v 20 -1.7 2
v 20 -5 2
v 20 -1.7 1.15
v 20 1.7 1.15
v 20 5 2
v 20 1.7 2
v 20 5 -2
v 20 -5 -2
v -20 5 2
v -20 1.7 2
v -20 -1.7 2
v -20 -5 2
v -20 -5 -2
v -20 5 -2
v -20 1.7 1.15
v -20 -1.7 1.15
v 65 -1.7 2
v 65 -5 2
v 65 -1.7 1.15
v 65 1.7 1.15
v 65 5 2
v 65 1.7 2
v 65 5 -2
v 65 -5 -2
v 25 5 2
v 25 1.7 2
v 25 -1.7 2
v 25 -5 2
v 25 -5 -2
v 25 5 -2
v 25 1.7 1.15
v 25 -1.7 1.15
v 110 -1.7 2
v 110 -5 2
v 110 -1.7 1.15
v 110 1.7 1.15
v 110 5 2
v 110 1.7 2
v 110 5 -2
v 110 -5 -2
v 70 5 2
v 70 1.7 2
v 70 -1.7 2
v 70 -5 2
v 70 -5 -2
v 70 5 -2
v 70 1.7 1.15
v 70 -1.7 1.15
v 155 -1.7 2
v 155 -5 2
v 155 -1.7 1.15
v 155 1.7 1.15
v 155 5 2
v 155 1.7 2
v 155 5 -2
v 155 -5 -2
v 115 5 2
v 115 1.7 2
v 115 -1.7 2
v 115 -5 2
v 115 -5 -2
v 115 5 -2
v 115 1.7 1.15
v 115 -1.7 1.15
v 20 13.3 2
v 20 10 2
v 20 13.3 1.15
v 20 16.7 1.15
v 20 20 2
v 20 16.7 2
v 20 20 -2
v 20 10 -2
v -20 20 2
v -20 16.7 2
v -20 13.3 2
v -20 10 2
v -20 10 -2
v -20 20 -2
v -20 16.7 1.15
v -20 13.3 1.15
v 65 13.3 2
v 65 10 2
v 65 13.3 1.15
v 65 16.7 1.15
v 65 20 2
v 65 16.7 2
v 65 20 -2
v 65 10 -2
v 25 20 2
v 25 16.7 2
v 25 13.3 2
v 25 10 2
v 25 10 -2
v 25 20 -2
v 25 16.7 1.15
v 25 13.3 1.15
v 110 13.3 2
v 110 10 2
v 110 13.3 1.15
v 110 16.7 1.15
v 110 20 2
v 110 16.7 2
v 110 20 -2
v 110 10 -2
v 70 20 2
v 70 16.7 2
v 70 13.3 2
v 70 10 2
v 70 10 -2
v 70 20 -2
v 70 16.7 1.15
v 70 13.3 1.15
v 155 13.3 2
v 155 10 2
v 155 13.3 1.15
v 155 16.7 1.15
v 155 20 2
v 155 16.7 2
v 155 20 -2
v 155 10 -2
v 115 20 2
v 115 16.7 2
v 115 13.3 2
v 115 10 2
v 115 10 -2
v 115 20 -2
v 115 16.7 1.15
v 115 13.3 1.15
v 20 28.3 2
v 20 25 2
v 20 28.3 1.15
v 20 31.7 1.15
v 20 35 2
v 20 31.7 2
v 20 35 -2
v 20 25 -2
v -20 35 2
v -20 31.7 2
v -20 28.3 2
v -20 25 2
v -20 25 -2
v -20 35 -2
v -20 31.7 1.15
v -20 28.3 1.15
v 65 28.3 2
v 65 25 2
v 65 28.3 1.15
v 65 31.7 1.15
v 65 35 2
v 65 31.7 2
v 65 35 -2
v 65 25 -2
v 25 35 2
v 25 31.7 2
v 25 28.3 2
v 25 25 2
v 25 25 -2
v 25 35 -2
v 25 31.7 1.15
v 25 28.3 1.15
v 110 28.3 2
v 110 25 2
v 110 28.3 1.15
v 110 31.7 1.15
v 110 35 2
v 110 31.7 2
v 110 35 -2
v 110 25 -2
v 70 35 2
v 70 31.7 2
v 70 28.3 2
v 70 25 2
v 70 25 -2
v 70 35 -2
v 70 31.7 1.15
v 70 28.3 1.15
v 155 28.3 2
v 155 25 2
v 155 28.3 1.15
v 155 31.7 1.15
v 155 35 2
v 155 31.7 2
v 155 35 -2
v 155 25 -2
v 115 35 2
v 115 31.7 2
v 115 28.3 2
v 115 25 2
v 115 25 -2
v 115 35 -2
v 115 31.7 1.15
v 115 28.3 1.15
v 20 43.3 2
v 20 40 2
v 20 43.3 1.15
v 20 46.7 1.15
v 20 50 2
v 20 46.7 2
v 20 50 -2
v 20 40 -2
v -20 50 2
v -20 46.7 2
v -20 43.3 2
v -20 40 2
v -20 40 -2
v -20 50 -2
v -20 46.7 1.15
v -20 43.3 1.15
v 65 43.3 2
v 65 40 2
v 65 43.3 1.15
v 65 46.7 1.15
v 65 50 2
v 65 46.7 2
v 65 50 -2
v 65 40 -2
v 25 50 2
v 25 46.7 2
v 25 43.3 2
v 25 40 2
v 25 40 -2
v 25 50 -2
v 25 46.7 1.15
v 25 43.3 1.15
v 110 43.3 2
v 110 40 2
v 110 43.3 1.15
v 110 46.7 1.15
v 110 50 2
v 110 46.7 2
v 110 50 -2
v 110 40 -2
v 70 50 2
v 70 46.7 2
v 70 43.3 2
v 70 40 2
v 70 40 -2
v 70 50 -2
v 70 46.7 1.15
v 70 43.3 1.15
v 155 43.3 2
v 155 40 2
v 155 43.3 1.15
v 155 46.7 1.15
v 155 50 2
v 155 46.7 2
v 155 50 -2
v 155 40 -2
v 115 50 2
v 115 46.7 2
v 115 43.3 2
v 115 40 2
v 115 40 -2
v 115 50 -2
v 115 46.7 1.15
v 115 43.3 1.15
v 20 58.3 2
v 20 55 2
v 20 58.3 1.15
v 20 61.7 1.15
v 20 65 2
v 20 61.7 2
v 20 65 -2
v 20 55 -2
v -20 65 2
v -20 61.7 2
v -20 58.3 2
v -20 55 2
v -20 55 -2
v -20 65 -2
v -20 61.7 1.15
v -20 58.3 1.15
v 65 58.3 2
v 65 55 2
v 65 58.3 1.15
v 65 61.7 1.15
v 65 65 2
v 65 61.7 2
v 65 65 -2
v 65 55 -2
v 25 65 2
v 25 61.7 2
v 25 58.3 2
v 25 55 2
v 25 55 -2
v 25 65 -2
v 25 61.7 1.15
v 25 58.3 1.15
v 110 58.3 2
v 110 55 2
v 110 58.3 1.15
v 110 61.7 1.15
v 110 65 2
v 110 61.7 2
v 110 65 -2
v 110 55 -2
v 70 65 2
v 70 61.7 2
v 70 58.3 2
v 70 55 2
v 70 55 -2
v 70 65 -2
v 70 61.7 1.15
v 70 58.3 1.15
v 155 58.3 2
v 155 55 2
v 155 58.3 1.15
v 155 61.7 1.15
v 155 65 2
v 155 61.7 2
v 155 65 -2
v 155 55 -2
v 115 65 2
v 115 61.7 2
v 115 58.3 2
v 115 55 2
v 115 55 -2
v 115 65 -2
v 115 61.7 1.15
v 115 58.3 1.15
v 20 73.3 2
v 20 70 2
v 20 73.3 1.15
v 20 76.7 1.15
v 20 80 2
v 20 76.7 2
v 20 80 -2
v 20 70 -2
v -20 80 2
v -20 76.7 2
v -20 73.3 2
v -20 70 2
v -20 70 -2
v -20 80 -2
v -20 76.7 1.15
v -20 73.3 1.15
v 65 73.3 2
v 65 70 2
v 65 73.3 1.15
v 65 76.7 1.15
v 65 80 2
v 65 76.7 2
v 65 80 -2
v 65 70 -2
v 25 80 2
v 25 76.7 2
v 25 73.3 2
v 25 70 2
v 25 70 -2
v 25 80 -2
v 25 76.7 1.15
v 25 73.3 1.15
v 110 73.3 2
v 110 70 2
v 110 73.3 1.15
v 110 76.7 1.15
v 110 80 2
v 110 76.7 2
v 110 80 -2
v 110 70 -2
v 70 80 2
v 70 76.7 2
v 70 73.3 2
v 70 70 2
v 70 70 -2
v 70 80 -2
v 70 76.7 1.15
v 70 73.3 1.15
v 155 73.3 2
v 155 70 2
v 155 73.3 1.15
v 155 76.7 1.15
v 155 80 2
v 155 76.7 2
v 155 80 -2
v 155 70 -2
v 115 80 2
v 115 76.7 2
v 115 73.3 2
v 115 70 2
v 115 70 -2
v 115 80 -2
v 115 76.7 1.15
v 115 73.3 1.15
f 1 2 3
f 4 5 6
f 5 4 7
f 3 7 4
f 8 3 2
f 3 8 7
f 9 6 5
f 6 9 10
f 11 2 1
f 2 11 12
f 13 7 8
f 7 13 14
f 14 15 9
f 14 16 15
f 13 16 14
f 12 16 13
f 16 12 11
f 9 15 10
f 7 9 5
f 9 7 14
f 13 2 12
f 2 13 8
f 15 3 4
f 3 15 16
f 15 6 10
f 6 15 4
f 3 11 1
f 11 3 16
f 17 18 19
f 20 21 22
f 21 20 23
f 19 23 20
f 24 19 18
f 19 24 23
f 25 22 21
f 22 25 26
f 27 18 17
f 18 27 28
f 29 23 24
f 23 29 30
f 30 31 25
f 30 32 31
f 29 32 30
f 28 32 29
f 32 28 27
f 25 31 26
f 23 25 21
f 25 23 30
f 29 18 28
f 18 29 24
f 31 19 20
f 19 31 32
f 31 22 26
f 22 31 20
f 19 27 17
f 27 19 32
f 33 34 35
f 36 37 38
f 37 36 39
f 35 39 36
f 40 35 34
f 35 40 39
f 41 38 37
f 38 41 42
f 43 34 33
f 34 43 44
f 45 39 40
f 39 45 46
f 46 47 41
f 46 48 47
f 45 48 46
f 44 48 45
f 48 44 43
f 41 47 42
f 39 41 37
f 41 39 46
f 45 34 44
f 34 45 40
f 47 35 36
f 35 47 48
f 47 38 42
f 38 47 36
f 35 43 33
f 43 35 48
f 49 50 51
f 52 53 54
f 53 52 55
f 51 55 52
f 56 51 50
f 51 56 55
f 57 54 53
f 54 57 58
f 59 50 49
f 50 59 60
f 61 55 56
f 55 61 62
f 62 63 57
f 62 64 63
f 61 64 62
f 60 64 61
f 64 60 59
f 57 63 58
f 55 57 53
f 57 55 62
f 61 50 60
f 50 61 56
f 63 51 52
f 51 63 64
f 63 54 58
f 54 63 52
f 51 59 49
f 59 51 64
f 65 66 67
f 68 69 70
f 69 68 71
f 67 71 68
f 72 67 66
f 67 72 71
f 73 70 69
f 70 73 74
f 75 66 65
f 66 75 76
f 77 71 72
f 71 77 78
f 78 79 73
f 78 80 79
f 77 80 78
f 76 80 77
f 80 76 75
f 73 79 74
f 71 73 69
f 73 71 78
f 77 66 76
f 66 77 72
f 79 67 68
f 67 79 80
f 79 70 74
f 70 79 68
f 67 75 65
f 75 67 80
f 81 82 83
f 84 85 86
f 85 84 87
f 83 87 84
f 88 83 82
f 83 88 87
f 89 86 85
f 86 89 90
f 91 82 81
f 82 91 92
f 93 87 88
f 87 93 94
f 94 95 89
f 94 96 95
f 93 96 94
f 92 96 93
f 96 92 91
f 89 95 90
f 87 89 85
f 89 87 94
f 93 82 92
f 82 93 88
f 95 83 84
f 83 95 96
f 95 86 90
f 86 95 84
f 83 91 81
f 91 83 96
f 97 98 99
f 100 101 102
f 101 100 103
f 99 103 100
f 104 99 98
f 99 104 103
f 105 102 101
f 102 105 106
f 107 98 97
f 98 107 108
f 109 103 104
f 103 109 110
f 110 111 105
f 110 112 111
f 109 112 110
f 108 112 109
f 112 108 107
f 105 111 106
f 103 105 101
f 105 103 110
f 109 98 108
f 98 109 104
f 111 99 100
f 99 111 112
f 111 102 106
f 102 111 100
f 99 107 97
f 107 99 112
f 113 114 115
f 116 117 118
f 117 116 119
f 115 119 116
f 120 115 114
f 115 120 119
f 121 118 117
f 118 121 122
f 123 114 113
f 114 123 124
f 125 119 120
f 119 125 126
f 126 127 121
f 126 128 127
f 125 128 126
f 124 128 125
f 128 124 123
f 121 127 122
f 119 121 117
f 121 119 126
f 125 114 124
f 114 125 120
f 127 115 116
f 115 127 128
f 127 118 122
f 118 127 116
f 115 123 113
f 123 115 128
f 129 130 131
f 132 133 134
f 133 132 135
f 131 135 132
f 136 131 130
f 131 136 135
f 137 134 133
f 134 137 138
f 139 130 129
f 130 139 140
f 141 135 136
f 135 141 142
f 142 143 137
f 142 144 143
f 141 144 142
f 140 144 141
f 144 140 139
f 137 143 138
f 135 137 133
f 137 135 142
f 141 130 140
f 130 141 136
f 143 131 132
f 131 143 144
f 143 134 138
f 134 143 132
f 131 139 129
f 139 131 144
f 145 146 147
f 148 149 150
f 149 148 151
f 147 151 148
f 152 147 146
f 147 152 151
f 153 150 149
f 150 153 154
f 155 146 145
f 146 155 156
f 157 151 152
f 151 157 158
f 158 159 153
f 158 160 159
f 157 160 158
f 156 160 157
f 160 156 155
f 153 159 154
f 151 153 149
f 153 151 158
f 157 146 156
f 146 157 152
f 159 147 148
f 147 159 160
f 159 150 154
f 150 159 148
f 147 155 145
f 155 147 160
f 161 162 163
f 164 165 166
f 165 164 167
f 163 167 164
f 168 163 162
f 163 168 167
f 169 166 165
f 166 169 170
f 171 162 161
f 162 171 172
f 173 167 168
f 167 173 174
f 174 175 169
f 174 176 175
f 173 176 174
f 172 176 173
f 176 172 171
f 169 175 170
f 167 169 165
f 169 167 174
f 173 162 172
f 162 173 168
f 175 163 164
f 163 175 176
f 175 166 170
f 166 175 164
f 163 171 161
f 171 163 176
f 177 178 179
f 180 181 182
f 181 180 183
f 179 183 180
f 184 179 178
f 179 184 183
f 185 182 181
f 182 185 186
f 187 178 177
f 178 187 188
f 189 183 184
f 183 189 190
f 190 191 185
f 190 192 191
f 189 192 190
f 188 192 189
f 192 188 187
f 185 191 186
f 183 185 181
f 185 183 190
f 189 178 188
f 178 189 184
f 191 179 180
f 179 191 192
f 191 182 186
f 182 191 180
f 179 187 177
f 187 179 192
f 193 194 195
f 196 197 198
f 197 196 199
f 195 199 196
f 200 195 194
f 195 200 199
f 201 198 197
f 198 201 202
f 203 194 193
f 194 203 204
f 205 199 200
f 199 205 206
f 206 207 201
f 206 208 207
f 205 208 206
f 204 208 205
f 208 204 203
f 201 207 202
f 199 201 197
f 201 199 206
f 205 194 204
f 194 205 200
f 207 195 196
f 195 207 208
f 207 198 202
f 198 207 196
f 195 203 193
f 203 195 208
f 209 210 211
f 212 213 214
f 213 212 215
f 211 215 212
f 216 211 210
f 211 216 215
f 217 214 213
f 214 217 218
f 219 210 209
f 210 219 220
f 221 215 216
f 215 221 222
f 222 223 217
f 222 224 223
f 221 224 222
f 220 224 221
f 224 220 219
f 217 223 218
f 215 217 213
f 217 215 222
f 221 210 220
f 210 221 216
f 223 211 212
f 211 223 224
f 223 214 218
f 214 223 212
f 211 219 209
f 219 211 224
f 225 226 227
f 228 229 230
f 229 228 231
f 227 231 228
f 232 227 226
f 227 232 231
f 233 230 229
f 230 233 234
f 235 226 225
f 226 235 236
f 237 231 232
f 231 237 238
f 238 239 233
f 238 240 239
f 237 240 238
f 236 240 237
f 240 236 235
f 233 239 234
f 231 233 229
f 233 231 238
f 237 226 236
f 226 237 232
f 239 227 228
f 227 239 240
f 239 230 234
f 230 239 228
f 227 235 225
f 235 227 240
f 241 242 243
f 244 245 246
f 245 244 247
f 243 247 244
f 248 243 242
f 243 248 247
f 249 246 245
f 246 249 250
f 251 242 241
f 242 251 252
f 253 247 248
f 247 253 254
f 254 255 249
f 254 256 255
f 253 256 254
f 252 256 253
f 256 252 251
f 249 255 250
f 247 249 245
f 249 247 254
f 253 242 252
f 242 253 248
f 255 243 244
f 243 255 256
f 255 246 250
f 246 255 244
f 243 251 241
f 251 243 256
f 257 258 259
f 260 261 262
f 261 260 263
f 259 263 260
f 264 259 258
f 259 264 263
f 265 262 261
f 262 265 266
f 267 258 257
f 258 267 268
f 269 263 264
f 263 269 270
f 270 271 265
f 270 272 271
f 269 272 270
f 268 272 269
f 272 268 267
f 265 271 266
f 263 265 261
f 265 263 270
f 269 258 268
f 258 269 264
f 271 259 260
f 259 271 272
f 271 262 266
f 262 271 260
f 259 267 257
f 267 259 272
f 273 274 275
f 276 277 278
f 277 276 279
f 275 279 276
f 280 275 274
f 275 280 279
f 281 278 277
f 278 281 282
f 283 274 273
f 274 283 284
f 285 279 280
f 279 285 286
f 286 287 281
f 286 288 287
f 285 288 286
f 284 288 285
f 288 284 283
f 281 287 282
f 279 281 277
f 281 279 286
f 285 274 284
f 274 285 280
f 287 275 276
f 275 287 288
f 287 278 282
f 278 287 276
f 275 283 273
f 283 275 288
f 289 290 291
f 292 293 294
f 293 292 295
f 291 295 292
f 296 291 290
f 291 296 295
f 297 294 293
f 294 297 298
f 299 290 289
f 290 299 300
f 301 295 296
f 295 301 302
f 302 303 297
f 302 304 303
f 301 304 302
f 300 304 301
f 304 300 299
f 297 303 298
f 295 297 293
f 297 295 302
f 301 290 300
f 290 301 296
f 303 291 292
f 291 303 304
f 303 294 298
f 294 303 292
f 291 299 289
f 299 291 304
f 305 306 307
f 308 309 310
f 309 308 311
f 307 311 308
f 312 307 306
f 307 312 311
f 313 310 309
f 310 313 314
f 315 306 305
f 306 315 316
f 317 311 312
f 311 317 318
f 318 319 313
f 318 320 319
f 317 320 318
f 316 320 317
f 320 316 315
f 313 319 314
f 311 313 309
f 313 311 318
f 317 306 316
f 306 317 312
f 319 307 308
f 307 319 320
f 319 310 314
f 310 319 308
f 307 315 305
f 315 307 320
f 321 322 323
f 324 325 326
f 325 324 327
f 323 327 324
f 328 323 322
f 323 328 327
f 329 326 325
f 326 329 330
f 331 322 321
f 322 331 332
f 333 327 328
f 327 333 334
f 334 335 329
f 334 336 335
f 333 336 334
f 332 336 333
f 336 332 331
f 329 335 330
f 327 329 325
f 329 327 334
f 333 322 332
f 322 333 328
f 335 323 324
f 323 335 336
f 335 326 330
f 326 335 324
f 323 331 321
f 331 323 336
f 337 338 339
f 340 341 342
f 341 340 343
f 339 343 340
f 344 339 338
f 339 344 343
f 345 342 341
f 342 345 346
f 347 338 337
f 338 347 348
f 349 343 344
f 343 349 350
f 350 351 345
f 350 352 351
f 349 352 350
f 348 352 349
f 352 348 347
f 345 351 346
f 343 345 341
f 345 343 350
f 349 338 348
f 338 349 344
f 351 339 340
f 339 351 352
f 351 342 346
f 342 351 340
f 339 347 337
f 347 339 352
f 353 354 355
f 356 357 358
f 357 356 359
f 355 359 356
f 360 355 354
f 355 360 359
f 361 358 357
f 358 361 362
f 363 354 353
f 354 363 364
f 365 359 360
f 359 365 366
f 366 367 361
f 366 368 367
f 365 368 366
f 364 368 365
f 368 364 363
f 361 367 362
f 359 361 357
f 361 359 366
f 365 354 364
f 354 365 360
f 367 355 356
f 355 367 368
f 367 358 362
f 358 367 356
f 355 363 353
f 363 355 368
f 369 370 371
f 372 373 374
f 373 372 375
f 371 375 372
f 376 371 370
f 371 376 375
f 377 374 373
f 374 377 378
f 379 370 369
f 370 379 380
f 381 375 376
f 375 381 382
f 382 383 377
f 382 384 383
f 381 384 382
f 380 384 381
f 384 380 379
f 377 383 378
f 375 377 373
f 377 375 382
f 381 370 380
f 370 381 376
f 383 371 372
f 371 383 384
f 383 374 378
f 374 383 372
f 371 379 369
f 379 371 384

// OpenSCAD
el_l = 40;
el_w = 10;
el_h = 4;
wire = 1.7;
gr_w = wire*2;
gr_h = wire;
padding = 5;

for(row = [0 : 5]) {
    for(col = [0 : 3]) {
        translate([col*(el_l+padding), row*(el_w+padding), 0])
            difference() {
                cube([el_l, el_w, el_h], true);
                translate([0, 0, (el_h/2)])
                    cube([el_l, gr_w, gr_h], true);
        }
    }
}
